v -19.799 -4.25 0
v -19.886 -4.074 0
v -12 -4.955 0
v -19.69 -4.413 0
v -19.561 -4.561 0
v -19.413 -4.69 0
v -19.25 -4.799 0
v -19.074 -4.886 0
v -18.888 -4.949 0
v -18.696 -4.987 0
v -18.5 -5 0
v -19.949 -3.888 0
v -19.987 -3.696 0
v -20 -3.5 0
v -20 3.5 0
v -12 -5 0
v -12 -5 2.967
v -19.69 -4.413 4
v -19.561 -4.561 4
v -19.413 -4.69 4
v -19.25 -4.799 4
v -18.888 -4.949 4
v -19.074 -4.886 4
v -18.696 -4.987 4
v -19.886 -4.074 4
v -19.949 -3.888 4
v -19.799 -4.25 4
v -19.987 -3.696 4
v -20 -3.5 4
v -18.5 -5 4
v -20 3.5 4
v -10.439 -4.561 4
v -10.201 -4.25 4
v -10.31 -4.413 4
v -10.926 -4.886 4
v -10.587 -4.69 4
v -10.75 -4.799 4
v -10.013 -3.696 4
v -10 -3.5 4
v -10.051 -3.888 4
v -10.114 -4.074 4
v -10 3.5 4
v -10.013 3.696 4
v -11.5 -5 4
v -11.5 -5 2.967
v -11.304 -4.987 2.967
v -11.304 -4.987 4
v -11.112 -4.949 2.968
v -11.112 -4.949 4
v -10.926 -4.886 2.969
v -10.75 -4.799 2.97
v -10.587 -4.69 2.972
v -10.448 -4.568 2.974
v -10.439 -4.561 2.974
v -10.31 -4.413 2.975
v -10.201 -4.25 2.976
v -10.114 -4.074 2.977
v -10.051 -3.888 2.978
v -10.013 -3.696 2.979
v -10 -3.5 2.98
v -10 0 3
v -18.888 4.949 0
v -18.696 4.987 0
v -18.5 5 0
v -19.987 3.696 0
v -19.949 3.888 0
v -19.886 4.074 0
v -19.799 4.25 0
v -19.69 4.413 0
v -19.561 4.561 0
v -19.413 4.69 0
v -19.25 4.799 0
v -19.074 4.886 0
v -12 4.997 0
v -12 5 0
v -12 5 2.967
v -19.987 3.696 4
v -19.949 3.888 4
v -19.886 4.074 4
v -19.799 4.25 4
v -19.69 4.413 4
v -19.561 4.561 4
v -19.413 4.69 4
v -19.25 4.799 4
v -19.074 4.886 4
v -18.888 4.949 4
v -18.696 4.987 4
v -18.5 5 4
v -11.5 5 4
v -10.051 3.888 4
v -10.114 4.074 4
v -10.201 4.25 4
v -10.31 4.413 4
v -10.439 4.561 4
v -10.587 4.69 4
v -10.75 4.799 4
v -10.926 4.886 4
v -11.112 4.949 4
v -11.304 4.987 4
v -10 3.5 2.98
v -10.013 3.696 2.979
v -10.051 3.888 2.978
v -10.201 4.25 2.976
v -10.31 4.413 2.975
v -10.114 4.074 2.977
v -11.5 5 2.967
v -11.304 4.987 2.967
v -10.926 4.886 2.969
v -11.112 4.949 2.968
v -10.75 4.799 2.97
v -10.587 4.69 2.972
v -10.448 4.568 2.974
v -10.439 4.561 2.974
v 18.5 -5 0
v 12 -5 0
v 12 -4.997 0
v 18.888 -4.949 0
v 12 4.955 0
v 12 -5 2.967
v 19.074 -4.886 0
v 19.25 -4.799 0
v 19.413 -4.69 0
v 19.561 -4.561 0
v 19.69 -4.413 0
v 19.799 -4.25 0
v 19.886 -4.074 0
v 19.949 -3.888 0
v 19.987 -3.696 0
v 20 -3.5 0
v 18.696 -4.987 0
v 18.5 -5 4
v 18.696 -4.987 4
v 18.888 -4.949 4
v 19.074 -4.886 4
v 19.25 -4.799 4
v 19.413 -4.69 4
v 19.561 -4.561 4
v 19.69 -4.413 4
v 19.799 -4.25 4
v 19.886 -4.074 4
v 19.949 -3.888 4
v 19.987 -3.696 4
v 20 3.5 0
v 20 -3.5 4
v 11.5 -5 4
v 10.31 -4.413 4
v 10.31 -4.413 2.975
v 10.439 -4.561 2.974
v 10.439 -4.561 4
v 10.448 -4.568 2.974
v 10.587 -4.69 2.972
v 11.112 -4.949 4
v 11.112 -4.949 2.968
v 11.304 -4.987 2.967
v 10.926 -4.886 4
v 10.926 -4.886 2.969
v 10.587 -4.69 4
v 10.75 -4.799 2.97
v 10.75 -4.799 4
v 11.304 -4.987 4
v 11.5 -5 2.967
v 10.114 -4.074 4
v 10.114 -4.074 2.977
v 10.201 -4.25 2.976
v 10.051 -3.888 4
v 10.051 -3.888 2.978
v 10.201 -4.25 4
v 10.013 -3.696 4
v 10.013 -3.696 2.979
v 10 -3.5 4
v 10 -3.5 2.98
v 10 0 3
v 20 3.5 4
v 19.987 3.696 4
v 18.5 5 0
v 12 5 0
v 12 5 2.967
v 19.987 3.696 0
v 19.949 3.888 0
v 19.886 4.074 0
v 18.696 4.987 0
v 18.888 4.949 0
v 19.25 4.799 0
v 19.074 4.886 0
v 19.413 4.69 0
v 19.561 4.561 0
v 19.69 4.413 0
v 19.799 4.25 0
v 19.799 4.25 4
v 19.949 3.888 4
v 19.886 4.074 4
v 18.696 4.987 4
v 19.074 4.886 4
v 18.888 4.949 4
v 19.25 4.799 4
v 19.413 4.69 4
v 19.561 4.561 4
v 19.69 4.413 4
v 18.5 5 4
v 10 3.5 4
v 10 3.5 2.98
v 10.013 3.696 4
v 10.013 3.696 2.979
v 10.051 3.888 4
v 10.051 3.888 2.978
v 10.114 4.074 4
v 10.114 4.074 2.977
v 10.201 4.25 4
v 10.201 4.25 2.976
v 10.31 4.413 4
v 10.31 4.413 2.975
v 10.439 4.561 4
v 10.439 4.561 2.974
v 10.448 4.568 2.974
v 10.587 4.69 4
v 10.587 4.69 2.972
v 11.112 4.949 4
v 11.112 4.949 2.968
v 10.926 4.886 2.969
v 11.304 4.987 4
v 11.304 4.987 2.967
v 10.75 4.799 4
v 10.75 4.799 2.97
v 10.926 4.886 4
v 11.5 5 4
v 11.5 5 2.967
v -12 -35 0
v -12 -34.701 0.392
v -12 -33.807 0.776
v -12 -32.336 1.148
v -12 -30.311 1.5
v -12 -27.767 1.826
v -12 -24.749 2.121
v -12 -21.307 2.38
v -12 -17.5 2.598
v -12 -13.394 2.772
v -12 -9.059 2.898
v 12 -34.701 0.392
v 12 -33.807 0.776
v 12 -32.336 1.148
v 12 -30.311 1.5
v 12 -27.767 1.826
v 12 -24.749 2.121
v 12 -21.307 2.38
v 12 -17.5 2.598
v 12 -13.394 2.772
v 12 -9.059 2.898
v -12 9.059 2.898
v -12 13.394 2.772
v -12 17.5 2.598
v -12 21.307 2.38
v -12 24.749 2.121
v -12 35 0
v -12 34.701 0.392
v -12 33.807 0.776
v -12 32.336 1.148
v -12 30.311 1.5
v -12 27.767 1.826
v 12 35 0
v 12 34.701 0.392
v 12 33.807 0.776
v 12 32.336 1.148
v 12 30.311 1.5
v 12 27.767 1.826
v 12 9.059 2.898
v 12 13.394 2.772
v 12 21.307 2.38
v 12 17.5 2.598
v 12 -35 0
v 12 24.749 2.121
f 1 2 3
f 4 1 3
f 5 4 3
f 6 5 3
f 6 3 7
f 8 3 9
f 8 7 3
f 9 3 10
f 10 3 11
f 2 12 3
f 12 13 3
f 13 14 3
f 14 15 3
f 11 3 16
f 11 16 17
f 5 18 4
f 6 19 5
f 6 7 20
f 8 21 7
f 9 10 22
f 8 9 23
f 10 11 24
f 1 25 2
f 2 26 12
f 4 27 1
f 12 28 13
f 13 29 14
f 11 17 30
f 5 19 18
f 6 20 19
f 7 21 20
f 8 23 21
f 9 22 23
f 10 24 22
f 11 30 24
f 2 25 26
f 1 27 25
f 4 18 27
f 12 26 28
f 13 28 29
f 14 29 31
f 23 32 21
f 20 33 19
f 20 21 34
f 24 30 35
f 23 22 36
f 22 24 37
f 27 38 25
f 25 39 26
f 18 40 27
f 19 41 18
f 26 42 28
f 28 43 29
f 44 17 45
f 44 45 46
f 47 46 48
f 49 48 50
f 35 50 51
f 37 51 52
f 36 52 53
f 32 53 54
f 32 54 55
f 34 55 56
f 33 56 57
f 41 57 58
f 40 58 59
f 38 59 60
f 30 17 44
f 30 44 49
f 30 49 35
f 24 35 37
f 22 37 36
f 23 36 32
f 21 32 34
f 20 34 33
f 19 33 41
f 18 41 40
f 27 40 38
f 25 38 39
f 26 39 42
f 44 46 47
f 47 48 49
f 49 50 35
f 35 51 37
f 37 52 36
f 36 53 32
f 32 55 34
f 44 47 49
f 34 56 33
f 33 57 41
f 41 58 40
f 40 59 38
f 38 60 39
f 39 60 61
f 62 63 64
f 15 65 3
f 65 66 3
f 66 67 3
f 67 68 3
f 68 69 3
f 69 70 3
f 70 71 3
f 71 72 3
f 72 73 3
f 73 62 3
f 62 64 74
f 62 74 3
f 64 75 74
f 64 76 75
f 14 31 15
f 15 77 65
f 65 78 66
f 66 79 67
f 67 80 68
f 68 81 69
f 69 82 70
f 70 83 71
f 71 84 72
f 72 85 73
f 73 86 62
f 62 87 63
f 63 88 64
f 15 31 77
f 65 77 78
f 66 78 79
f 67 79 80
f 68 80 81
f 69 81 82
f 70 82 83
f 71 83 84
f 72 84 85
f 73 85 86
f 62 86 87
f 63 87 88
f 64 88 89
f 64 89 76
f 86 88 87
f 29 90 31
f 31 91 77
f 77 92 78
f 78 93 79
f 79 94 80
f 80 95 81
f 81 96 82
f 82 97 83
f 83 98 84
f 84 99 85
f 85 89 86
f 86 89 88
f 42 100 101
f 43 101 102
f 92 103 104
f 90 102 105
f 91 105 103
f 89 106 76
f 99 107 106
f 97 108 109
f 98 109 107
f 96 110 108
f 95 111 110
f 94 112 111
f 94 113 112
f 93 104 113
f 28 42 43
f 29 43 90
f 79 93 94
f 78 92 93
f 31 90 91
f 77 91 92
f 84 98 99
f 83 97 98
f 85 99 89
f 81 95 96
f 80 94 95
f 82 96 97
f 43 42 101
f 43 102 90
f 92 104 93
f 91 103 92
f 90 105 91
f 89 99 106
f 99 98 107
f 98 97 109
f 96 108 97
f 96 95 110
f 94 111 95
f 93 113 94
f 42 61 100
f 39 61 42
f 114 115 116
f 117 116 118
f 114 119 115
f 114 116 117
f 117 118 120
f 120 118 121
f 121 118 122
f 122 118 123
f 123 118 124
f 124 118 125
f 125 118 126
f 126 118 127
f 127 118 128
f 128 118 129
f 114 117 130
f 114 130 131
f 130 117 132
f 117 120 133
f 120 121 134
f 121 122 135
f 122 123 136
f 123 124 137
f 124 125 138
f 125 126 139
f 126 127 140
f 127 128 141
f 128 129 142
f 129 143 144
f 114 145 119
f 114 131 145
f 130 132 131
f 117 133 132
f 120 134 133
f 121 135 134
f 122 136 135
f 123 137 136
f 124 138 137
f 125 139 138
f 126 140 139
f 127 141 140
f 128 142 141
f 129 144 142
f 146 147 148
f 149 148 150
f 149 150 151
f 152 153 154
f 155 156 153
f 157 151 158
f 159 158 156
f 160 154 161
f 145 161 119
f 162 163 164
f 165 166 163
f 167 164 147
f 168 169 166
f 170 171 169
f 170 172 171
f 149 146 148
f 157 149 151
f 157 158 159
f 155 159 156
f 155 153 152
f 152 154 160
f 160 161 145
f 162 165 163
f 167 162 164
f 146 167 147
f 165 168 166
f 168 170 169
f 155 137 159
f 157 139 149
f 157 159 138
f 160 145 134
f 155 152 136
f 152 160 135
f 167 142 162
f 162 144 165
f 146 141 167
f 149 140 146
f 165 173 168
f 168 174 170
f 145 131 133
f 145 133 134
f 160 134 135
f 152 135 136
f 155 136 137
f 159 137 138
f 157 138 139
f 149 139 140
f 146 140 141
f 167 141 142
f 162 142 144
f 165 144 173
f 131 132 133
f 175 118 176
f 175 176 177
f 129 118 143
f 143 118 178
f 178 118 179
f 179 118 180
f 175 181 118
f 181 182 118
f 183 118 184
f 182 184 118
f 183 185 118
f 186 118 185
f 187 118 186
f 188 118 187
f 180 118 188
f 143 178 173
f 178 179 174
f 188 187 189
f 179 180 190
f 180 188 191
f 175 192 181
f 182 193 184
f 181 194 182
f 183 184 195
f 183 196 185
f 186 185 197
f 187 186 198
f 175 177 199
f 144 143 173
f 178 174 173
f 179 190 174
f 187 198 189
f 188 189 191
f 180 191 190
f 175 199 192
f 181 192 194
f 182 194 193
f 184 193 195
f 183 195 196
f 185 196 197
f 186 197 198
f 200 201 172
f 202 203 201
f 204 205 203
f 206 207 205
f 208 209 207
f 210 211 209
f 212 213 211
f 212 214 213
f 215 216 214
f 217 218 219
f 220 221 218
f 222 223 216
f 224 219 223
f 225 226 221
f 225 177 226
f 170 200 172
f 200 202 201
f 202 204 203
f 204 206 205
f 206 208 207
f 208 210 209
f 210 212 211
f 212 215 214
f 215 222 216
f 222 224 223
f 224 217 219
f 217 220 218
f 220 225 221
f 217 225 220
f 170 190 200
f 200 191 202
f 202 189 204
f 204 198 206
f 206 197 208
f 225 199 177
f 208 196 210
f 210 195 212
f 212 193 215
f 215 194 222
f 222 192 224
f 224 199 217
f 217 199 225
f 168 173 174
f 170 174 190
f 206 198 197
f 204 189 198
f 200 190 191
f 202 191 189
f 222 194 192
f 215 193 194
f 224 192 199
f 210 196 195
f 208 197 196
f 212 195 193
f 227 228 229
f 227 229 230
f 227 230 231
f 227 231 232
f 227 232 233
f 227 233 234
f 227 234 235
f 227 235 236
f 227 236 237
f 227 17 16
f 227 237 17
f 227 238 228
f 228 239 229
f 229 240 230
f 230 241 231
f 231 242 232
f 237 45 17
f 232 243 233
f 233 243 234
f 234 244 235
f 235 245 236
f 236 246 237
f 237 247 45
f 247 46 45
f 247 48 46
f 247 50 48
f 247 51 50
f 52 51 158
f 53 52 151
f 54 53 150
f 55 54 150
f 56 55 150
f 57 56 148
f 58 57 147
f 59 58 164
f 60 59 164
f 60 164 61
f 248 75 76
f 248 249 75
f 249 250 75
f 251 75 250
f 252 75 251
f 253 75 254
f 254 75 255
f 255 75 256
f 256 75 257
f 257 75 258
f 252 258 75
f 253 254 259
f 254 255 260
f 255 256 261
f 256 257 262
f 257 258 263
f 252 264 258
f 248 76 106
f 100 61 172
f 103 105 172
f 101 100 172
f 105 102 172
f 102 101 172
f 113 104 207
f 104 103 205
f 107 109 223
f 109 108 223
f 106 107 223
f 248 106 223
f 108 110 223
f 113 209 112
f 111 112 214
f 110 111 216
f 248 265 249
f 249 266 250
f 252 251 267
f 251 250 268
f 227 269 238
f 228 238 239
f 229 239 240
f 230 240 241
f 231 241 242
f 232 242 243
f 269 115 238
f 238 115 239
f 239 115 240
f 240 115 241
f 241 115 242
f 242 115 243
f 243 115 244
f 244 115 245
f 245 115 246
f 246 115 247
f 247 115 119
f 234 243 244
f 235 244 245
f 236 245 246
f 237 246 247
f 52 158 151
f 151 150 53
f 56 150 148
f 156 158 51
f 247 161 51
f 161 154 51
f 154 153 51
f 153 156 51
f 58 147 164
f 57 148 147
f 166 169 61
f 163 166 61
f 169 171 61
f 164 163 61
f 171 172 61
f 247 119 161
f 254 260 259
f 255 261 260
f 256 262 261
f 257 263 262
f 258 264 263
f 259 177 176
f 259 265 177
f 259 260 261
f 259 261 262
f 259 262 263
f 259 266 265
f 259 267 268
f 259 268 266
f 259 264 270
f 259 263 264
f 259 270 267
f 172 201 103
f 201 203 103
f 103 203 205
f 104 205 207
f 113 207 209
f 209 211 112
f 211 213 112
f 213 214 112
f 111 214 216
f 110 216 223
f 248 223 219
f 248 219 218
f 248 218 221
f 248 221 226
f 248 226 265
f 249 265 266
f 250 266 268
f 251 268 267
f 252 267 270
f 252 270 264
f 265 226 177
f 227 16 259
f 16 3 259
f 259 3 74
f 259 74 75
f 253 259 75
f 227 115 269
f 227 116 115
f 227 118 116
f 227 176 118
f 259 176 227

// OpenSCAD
// Alignment plate for two side-by-side wooden key trays.
// A small plastic plate: two locating tabs, each nesting in the shallow
// decorative recess on a box's underside, joined by an arched bridge across
// the seam — so the two boxes stay aligned and can't drift apart.
//
// Axes: X runs across the two boxes (the bridge direction),
//       Y runs along the seam between them.

// Tab — the small rectangle that sits in each box's underside recess.
tab_w = 10;            // X, across the boxes
tab_h = 10;            // Y, along the seam
tab_thickness = 4;     // <= recess depth (~5mm) so the boxes don't rock
tab_r = 1.5;           // corner rounding

// Bridge — spans the seam and joins the two tabs.
gap_x = 20;            // exposed bridge span between the tabs (X)
bridge_thickness = 3;  // arch height at the peak
bridge_width = 70;     // bridge extent along the seam (Y)
weld = 2;              // how far the bridge tucks under each tab, for a solid join

// Derived
tab_center_x = gap_x / 2 + tab_w / 2;   // each tab's offset from centre
bridge_len_x = gap_x + 2 * weld;        // X length of the bridge bar

$fn = 48;

// A rounded rectangle of size [x, y], corner radius r, extruded to height h.
module rounded_slab(x, y, r, h) {
  linear_extrude(height = h)
    offset(r = r)
      square([x - 2 * r, y - 2 * r], center = true);
}

module tab() {
  rounded_slab(tab_w, tab_h, tab_r, tab_thickness);
}

module bridge() {
  // Cross-section (Y-Z) is a half-ellipse: flat bottom, arched top like a
  // bridge, peaking at bridge_thickness in the middle.
  r = bridge_width / 2;

  scale([1, 1, bridge_thickness / r])
    intersection() {
      rotate([0, 90, 0])
        cylinder(h = bridge_len_x, r = r, center = true);

      // Keep only the top half (z >= 0) so the bottom stays flat.
      translate([0, 0, r])
        cube([bridge_len_x + 1, bridge_width, 2 * r], center = true);
    }
}

module plate() {
  union() {
    for (sx = [-1, 1])
      translate([sx * tab_center_x, 0, 0])
        tab();

    bridge();
  }
}

// Render selector: "all" for the full plate, "bridge" to test just the bridge.
part = "all";

if (part == "bridge") bridge();
else plate();
